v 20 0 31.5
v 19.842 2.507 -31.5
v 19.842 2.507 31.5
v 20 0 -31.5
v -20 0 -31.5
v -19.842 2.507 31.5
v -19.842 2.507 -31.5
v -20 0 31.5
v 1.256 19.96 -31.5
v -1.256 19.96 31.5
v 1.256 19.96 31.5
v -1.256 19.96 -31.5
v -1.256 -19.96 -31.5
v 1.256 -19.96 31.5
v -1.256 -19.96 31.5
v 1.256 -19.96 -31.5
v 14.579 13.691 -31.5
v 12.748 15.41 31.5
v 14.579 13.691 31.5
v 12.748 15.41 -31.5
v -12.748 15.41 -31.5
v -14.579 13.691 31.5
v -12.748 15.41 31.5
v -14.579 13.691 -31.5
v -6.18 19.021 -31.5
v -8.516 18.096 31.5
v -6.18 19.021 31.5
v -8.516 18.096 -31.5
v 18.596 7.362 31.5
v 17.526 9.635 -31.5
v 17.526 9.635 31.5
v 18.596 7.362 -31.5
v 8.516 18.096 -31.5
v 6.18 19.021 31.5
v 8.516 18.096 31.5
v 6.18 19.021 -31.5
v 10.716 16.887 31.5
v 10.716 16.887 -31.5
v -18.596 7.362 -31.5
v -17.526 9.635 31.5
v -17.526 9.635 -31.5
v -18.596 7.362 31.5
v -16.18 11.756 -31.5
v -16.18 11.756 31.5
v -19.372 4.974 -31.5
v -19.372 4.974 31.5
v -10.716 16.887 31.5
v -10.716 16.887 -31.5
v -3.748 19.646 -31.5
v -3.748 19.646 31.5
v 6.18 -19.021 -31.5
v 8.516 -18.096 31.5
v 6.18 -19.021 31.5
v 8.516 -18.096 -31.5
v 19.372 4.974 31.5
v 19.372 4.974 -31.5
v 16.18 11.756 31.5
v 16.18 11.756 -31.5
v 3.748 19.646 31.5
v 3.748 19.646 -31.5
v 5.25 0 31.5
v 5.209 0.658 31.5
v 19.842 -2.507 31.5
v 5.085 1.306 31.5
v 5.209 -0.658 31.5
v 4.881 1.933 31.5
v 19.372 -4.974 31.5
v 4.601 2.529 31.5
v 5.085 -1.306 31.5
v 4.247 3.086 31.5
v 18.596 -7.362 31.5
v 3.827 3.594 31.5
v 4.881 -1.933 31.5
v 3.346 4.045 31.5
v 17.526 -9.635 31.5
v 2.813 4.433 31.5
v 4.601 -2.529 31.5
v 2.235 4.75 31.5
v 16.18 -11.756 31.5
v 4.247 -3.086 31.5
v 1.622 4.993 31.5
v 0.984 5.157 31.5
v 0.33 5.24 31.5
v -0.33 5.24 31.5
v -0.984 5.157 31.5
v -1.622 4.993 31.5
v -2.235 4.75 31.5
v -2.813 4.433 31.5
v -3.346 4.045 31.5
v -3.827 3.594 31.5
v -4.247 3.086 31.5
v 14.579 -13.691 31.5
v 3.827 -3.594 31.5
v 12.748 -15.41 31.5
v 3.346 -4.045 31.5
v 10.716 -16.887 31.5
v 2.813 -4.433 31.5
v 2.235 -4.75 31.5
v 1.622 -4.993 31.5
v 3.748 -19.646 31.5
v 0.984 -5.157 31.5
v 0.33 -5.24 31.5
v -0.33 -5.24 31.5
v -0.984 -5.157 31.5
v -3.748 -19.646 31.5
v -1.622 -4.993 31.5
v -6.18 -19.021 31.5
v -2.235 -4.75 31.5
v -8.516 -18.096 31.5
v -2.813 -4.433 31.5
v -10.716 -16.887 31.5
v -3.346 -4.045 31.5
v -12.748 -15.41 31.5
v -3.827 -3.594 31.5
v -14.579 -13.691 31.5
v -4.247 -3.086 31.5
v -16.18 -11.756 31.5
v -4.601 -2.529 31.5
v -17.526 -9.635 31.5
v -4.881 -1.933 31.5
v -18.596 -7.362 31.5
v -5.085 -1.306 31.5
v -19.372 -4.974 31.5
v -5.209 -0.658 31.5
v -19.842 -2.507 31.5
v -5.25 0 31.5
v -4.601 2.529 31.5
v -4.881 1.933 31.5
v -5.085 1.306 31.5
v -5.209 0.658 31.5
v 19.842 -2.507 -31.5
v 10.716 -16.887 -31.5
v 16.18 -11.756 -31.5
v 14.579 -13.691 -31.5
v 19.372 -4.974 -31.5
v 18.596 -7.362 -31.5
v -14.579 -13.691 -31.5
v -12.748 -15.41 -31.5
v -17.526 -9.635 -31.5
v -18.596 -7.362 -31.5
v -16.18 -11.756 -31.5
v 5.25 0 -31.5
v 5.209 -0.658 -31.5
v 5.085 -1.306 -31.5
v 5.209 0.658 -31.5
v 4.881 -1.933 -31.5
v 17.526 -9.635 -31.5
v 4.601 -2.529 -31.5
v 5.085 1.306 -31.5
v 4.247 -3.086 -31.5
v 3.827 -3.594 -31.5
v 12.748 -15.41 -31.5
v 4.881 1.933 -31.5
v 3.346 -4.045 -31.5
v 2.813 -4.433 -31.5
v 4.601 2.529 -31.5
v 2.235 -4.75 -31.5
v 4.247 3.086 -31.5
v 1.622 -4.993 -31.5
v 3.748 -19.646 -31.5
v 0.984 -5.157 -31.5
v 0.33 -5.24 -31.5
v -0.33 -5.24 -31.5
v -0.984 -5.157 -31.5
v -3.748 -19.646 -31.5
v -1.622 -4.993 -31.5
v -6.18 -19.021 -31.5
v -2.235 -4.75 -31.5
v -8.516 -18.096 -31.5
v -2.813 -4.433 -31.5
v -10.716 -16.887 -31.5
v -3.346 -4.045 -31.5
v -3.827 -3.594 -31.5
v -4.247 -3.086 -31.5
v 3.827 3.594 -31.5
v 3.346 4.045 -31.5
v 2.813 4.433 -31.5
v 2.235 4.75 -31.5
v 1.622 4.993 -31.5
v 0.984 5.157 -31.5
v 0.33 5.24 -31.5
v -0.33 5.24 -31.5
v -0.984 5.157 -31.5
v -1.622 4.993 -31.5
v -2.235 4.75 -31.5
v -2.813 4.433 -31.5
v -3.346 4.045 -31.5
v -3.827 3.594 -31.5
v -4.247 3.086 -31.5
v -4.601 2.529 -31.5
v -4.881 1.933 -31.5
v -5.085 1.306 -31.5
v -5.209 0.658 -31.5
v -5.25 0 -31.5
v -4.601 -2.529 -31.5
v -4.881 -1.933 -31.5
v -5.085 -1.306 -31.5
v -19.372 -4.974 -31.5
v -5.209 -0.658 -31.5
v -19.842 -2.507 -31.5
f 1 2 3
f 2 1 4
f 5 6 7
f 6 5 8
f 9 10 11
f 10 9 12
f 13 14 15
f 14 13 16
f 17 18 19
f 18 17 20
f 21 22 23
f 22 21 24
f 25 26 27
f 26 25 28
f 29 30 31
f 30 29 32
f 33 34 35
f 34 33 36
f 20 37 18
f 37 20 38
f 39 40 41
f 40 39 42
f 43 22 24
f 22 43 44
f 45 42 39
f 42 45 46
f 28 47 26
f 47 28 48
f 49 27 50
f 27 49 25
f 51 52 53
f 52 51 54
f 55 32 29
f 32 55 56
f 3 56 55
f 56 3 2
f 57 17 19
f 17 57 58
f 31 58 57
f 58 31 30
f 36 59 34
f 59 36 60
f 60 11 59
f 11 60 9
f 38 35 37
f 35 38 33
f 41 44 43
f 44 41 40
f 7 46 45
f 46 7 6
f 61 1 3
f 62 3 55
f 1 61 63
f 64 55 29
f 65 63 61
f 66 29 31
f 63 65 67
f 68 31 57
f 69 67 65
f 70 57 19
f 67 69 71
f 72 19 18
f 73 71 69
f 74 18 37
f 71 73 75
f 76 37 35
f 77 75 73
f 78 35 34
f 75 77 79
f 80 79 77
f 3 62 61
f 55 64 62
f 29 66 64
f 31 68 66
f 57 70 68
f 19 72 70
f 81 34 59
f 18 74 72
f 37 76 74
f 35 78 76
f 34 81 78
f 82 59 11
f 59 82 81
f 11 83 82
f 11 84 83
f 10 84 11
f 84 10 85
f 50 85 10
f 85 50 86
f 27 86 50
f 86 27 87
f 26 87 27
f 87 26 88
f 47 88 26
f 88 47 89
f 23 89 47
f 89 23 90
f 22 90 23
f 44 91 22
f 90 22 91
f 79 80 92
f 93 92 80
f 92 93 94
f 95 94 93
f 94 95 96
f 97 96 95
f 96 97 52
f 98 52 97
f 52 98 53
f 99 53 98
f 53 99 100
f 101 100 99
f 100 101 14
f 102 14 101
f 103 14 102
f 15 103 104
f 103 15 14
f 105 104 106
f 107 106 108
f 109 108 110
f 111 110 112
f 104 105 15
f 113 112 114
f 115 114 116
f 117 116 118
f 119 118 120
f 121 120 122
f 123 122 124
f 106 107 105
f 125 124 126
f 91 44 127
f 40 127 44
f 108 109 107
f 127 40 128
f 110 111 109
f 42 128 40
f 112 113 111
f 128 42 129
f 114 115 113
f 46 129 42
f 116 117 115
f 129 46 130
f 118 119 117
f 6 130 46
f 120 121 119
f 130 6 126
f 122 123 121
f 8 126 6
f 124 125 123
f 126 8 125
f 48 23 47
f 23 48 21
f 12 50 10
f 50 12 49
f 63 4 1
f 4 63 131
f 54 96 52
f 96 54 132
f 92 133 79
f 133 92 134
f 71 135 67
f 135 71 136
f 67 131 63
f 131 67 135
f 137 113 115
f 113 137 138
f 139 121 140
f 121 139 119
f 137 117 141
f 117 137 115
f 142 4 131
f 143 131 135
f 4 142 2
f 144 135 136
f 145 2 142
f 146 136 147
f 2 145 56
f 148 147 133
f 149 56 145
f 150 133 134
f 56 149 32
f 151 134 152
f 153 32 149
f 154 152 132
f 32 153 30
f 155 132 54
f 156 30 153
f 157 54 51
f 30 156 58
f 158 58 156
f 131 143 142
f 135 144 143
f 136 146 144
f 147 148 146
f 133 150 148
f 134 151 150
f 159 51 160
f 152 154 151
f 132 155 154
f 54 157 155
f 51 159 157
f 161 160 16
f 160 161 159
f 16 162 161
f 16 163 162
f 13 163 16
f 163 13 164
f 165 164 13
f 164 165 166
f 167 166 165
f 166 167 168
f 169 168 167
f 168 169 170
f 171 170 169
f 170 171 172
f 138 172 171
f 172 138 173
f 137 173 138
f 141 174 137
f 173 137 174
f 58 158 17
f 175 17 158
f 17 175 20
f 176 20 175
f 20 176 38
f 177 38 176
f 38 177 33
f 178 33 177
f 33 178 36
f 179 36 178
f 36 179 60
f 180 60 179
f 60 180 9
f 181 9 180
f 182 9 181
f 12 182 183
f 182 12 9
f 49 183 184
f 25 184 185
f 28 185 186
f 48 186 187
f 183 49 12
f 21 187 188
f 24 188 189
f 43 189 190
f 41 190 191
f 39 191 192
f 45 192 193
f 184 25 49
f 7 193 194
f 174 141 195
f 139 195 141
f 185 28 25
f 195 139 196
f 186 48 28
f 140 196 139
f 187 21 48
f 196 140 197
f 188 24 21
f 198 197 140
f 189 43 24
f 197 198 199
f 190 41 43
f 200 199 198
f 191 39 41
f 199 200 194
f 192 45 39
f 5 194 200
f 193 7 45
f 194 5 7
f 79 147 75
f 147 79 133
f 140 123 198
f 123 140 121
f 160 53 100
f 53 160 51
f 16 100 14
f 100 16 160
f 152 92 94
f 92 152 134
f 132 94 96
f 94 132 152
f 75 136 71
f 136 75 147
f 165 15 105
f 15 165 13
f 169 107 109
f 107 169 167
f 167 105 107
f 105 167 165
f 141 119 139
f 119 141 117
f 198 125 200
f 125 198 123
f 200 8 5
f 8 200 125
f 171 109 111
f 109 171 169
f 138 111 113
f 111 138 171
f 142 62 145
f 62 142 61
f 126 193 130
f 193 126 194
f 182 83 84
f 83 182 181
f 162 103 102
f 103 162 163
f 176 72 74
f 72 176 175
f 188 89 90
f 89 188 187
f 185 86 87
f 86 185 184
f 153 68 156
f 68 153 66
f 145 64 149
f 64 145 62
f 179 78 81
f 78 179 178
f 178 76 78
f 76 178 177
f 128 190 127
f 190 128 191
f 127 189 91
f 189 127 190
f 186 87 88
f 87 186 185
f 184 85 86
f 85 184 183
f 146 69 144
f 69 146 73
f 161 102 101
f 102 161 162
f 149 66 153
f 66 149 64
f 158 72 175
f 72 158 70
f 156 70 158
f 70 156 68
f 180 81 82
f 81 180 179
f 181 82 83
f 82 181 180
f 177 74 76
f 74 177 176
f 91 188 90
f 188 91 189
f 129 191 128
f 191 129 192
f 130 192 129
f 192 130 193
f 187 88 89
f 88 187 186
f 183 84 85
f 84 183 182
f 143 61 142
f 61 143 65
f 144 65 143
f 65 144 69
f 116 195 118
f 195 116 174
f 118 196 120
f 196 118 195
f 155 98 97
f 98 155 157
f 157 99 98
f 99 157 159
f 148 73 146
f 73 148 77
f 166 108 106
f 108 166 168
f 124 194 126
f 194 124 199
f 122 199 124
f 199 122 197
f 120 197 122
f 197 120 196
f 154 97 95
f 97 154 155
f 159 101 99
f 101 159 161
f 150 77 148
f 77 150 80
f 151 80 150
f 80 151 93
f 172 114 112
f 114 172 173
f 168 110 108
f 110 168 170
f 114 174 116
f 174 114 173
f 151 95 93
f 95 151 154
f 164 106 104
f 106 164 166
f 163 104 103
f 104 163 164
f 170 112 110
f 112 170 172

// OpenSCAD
$fn = 50;


difference() {
	union() {
		translate(v = [0, 0, -31.5000000000]) {
			cylinder(h = 63, r = 20.0000000000);
		}
	}
	union() {
		translate(v = [0, 0, -100.0000000000]) {
			cylinder(h = 200, r = 5.2500000000);
		}
	}
}
